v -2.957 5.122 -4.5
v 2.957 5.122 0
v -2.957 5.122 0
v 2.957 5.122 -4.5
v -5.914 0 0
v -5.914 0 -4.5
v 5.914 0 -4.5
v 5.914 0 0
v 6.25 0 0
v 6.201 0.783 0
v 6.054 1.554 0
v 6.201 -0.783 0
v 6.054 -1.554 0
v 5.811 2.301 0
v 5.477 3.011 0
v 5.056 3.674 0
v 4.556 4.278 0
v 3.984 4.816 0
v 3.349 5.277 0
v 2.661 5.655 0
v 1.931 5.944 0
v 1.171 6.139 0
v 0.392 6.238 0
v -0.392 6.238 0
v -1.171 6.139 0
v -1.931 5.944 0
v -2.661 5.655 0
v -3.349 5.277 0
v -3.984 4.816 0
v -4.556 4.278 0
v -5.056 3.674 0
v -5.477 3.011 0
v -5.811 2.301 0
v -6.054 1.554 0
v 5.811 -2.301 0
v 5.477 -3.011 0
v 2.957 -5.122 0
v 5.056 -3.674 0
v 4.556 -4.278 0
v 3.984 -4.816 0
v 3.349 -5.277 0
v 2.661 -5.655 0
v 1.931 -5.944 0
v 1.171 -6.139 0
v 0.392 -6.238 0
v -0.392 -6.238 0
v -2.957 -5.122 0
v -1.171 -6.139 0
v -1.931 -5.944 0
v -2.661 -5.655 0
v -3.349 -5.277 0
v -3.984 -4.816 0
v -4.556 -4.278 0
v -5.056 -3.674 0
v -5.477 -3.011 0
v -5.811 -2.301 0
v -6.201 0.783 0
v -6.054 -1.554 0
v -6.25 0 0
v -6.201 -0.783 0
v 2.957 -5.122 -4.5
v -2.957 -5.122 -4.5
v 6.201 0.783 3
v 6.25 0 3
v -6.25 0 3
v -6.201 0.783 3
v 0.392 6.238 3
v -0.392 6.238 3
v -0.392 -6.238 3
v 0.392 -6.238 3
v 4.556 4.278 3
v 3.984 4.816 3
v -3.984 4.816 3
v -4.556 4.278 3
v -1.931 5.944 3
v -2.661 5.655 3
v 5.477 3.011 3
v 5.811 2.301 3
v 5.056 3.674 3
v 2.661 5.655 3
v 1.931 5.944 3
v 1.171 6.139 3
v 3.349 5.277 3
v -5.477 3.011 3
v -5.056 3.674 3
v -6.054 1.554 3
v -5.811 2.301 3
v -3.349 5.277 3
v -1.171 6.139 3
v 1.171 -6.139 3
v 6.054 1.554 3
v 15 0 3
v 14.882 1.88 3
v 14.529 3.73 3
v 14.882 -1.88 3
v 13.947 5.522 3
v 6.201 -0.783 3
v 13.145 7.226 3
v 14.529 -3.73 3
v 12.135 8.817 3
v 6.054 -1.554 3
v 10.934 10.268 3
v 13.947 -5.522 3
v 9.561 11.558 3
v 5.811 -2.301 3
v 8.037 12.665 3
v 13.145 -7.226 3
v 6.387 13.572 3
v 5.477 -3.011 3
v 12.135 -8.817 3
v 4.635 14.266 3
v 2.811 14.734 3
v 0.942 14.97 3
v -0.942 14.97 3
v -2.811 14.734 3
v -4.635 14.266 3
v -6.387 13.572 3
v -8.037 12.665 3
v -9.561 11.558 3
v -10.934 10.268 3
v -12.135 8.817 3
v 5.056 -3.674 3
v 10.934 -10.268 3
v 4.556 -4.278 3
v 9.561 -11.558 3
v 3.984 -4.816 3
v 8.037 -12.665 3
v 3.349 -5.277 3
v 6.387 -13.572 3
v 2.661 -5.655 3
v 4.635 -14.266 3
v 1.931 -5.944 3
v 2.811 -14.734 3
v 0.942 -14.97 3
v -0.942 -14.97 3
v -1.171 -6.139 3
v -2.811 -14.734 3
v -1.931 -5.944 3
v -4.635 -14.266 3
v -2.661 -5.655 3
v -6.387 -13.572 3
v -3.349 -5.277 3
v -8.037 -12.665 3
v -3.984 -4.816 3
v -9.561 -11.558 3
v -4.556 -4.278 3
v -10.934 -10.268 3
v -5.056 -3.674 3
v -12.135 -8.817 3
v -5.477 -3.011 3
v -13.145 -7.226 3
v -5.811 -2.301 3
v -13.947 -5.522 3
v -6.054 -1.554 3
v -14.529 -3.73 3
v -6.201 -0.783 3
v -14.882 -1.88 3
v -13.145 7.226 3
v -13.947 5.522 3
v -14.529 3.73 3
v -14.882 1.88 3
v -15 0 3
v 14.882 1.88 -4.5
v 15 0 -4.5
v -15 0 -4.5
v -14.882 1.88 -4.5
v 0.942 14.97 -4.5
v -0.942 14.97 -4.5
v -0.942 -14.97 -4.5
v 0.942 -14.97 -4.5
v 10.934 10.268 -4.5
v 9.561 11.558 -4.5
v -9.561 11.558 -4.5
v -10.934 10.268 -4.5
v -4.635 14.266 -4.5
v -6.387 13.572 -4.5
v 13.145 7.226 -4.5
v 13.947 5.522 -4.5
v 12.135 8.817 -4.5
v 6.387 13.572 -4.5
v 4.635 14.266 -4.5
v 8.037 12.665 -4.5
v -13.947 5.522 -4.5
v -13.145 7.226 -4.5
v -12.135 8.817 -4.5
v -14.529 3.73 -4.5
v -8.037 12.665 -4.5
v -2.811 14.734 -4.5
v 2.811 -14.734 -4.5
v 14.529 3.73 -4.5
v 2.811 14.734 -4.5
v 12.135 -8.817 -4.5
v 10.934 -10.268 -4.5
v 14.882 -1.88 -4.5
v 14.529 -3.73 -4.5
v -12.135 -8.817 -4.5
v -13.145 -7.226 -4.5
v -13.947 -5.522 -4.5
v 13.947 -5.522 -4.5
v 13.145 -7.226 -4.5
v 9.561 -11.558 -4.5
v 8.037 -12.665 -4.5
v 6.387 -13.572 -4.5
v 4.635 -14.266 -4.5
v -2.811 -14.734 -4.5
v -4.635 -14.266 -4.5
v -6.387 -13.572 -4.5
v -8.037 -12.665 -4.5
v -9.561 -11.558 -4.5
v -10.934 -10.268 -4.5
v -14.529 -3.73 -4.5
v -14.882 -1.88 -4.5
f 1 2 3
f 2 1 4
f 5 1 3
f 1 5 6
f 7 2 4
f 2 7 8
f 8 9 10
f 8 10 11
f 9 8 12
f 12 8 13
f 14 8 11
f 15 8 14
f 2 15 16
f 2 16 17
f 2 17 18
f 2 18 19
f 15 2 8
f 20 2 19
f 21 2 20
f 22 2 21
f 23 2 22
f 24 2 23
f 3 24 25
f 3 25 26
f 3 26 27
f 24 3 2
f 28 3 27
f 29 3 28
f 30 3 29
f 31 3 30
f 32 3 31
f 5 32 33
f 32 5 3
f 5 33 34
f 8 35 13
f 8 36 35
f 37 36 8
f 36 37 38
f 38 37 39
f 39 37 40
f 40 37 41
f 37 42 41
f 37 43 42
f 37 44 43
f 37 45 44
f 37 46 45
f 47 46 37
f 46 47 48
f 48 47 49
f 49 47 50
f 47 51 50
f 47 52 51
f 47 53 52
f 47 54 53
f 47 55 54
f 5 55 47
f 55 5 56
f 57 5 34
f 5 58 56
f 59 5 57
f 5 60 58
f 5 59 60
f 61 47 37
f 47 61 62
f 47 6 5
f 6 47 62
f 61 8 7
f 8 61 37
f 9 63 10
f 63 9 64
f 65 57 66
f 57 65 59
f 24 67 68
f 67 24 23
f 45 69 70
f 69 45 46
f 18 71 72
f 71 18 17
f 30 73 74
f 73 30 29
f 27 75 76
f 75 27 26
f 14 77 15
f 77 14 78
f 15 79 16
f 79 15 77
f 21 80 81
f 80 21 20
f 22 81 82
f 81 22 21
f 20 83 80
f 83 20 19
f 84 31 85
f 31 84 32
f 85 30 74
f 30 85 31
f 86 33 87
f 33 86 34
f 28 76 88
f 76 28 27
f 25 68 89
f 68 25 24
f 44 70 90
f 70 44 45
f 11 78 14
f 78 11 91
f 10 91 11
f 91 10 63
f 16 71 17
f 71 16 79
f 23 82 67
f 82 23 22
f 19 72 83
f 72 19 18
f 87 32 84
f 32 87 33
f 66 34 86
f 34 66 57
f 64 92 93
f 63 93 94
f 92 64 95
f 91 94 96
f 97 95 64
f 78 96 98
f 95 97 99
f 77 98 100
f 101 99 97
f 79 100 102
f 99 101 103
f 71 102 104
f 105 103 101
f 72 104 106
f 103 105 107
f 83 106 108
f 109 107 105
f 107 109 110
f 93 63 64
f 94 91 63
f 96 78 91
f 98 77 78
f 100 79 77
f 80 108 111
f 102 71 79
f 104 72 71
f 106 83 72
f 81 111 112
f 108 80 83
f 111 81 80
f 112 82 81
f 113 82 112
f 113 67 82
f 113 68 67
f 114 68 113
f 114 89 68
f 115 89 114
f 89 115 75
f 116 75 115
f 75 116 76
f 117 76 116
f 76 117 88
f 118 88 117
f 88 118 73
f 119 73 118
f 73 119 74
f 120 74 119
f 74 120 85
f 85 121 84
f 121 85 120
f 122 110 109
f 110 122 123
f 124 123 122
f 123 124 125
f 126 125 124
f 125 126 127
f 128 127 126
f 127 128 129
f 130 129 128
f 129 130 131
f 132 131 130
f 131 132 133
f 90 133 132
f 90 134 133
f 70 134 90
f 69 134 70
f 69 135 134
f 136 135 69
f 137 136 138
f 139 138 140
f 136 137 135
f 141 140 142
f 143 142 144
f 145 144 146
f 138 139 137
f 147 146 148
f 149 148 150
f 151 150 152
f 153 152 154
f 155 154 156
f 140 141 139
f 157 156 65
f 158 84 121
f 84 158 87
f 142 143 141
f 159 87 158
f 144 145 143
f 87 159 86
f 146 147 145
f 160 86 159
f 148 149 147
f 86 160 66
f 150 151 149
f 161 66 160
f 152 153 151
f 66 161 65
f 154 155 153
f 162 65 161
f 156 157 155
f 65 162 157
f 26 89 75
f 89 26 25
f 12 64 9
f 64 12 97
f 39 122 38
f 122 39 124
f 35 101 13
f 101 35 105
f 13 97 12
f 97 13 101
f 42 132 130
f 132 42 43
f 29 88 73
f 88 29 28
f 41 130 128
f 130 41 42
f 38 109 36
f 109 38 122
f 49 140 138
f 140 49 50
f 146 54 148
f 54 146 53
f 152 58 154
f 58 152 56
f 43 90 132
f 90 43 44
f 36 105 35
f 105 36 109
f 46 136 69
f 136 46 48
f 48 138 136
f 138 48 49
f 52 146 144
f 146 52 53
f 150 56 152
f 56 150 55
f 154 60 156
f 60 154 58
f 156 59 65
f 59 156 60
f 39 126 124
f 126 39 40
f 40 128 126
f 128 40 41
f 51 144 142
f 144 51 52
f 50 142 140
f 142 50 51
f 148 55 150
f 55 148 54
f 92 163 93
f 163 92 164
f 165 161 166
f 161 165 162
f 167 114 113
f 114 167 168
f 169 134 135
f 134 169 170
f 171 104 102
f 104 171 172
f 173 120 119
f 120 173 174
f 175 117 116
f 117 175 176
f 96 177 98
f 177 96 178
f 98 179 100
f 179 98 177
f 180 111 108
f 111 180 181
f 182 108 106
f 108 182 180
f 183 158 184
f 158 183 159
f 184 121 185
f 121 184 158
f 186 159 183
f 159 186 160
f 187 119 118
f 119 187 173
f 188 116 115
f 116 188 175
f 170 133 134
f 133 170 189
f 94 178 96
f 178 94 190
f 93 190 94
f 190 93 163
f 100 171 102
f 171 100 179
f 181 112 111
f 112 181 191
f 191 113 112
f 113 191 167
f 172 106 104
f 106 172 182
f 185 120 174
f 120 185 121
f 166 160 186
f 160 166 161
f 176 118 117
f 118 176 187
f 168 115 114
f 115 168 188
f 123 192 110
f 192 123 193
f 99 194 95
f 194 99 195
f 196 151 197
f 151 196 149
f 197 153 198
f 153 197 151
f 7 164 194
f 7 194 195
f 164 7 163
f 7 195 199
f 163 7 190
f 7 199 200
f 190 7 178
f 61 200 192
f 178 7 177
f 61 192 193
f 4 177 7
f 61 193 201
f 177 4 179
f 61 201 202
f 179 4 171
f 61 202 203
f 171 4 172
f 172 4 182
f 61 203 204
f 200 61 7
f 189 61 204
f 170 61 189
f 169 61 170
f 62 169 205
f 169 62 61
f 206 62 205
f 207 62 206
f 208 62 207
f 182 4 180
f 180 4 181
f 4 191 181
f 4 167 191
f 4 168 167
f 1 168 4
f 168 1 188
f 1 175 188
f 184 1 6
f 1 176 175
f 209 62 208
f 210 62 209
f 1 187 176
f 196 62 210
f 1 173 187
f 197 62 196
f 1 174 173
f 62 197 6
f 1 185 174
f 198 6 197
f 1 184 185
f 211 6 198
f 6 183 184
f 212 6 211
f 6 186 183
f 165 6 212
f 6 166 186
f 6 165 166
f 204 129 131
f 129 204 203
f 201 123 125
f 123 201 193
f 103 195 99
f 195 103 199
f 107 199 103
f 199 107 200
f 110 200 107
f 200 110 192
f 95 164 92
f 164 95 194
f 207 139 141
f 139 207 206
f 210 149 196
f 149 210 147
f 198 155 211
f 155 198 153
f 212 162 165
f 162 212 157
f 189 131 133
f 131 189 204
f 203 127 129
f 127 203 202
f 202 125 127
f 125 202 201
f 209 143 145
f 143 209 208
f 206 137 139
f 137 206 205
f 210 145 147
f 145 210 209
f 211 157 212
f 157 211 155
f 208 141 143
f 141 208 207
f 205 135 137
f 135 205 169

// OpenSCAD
$fn = 50;


difference() {
	union() {
		translate(v = [0, 0, -4.5000000000]) {
			cylinder(h = 7.5000000000, r = 15.0000000000);
		}
	}
	union() {
		translate(v = [0, 0, 0]) {
			rotate(a = [0, 0, 0]) {
				difference() {
					union() {
						translate(v = [0, 0, -5]) {
							linear_extrude(height = 5) {
								polygon(points = [[5.9142500000, 0.0000000000], [2.9571250000, 5.1218907443], [-2.9571250000, 5.1218907443], [-5.9142500000, 0.0000000000], [-2.9571250000, -5.1218907443], [2.9571250000, -5.1218907443]]);
							}
						}
					}
					union();
				}
			}
		}
		#cylinder(h = 3, r = 6.2500000000);
		#translate(v = [0, 0, -100.0000000000]) {
			cylinder(h = 200, r = 3.2500000000);
		}
	}
}
